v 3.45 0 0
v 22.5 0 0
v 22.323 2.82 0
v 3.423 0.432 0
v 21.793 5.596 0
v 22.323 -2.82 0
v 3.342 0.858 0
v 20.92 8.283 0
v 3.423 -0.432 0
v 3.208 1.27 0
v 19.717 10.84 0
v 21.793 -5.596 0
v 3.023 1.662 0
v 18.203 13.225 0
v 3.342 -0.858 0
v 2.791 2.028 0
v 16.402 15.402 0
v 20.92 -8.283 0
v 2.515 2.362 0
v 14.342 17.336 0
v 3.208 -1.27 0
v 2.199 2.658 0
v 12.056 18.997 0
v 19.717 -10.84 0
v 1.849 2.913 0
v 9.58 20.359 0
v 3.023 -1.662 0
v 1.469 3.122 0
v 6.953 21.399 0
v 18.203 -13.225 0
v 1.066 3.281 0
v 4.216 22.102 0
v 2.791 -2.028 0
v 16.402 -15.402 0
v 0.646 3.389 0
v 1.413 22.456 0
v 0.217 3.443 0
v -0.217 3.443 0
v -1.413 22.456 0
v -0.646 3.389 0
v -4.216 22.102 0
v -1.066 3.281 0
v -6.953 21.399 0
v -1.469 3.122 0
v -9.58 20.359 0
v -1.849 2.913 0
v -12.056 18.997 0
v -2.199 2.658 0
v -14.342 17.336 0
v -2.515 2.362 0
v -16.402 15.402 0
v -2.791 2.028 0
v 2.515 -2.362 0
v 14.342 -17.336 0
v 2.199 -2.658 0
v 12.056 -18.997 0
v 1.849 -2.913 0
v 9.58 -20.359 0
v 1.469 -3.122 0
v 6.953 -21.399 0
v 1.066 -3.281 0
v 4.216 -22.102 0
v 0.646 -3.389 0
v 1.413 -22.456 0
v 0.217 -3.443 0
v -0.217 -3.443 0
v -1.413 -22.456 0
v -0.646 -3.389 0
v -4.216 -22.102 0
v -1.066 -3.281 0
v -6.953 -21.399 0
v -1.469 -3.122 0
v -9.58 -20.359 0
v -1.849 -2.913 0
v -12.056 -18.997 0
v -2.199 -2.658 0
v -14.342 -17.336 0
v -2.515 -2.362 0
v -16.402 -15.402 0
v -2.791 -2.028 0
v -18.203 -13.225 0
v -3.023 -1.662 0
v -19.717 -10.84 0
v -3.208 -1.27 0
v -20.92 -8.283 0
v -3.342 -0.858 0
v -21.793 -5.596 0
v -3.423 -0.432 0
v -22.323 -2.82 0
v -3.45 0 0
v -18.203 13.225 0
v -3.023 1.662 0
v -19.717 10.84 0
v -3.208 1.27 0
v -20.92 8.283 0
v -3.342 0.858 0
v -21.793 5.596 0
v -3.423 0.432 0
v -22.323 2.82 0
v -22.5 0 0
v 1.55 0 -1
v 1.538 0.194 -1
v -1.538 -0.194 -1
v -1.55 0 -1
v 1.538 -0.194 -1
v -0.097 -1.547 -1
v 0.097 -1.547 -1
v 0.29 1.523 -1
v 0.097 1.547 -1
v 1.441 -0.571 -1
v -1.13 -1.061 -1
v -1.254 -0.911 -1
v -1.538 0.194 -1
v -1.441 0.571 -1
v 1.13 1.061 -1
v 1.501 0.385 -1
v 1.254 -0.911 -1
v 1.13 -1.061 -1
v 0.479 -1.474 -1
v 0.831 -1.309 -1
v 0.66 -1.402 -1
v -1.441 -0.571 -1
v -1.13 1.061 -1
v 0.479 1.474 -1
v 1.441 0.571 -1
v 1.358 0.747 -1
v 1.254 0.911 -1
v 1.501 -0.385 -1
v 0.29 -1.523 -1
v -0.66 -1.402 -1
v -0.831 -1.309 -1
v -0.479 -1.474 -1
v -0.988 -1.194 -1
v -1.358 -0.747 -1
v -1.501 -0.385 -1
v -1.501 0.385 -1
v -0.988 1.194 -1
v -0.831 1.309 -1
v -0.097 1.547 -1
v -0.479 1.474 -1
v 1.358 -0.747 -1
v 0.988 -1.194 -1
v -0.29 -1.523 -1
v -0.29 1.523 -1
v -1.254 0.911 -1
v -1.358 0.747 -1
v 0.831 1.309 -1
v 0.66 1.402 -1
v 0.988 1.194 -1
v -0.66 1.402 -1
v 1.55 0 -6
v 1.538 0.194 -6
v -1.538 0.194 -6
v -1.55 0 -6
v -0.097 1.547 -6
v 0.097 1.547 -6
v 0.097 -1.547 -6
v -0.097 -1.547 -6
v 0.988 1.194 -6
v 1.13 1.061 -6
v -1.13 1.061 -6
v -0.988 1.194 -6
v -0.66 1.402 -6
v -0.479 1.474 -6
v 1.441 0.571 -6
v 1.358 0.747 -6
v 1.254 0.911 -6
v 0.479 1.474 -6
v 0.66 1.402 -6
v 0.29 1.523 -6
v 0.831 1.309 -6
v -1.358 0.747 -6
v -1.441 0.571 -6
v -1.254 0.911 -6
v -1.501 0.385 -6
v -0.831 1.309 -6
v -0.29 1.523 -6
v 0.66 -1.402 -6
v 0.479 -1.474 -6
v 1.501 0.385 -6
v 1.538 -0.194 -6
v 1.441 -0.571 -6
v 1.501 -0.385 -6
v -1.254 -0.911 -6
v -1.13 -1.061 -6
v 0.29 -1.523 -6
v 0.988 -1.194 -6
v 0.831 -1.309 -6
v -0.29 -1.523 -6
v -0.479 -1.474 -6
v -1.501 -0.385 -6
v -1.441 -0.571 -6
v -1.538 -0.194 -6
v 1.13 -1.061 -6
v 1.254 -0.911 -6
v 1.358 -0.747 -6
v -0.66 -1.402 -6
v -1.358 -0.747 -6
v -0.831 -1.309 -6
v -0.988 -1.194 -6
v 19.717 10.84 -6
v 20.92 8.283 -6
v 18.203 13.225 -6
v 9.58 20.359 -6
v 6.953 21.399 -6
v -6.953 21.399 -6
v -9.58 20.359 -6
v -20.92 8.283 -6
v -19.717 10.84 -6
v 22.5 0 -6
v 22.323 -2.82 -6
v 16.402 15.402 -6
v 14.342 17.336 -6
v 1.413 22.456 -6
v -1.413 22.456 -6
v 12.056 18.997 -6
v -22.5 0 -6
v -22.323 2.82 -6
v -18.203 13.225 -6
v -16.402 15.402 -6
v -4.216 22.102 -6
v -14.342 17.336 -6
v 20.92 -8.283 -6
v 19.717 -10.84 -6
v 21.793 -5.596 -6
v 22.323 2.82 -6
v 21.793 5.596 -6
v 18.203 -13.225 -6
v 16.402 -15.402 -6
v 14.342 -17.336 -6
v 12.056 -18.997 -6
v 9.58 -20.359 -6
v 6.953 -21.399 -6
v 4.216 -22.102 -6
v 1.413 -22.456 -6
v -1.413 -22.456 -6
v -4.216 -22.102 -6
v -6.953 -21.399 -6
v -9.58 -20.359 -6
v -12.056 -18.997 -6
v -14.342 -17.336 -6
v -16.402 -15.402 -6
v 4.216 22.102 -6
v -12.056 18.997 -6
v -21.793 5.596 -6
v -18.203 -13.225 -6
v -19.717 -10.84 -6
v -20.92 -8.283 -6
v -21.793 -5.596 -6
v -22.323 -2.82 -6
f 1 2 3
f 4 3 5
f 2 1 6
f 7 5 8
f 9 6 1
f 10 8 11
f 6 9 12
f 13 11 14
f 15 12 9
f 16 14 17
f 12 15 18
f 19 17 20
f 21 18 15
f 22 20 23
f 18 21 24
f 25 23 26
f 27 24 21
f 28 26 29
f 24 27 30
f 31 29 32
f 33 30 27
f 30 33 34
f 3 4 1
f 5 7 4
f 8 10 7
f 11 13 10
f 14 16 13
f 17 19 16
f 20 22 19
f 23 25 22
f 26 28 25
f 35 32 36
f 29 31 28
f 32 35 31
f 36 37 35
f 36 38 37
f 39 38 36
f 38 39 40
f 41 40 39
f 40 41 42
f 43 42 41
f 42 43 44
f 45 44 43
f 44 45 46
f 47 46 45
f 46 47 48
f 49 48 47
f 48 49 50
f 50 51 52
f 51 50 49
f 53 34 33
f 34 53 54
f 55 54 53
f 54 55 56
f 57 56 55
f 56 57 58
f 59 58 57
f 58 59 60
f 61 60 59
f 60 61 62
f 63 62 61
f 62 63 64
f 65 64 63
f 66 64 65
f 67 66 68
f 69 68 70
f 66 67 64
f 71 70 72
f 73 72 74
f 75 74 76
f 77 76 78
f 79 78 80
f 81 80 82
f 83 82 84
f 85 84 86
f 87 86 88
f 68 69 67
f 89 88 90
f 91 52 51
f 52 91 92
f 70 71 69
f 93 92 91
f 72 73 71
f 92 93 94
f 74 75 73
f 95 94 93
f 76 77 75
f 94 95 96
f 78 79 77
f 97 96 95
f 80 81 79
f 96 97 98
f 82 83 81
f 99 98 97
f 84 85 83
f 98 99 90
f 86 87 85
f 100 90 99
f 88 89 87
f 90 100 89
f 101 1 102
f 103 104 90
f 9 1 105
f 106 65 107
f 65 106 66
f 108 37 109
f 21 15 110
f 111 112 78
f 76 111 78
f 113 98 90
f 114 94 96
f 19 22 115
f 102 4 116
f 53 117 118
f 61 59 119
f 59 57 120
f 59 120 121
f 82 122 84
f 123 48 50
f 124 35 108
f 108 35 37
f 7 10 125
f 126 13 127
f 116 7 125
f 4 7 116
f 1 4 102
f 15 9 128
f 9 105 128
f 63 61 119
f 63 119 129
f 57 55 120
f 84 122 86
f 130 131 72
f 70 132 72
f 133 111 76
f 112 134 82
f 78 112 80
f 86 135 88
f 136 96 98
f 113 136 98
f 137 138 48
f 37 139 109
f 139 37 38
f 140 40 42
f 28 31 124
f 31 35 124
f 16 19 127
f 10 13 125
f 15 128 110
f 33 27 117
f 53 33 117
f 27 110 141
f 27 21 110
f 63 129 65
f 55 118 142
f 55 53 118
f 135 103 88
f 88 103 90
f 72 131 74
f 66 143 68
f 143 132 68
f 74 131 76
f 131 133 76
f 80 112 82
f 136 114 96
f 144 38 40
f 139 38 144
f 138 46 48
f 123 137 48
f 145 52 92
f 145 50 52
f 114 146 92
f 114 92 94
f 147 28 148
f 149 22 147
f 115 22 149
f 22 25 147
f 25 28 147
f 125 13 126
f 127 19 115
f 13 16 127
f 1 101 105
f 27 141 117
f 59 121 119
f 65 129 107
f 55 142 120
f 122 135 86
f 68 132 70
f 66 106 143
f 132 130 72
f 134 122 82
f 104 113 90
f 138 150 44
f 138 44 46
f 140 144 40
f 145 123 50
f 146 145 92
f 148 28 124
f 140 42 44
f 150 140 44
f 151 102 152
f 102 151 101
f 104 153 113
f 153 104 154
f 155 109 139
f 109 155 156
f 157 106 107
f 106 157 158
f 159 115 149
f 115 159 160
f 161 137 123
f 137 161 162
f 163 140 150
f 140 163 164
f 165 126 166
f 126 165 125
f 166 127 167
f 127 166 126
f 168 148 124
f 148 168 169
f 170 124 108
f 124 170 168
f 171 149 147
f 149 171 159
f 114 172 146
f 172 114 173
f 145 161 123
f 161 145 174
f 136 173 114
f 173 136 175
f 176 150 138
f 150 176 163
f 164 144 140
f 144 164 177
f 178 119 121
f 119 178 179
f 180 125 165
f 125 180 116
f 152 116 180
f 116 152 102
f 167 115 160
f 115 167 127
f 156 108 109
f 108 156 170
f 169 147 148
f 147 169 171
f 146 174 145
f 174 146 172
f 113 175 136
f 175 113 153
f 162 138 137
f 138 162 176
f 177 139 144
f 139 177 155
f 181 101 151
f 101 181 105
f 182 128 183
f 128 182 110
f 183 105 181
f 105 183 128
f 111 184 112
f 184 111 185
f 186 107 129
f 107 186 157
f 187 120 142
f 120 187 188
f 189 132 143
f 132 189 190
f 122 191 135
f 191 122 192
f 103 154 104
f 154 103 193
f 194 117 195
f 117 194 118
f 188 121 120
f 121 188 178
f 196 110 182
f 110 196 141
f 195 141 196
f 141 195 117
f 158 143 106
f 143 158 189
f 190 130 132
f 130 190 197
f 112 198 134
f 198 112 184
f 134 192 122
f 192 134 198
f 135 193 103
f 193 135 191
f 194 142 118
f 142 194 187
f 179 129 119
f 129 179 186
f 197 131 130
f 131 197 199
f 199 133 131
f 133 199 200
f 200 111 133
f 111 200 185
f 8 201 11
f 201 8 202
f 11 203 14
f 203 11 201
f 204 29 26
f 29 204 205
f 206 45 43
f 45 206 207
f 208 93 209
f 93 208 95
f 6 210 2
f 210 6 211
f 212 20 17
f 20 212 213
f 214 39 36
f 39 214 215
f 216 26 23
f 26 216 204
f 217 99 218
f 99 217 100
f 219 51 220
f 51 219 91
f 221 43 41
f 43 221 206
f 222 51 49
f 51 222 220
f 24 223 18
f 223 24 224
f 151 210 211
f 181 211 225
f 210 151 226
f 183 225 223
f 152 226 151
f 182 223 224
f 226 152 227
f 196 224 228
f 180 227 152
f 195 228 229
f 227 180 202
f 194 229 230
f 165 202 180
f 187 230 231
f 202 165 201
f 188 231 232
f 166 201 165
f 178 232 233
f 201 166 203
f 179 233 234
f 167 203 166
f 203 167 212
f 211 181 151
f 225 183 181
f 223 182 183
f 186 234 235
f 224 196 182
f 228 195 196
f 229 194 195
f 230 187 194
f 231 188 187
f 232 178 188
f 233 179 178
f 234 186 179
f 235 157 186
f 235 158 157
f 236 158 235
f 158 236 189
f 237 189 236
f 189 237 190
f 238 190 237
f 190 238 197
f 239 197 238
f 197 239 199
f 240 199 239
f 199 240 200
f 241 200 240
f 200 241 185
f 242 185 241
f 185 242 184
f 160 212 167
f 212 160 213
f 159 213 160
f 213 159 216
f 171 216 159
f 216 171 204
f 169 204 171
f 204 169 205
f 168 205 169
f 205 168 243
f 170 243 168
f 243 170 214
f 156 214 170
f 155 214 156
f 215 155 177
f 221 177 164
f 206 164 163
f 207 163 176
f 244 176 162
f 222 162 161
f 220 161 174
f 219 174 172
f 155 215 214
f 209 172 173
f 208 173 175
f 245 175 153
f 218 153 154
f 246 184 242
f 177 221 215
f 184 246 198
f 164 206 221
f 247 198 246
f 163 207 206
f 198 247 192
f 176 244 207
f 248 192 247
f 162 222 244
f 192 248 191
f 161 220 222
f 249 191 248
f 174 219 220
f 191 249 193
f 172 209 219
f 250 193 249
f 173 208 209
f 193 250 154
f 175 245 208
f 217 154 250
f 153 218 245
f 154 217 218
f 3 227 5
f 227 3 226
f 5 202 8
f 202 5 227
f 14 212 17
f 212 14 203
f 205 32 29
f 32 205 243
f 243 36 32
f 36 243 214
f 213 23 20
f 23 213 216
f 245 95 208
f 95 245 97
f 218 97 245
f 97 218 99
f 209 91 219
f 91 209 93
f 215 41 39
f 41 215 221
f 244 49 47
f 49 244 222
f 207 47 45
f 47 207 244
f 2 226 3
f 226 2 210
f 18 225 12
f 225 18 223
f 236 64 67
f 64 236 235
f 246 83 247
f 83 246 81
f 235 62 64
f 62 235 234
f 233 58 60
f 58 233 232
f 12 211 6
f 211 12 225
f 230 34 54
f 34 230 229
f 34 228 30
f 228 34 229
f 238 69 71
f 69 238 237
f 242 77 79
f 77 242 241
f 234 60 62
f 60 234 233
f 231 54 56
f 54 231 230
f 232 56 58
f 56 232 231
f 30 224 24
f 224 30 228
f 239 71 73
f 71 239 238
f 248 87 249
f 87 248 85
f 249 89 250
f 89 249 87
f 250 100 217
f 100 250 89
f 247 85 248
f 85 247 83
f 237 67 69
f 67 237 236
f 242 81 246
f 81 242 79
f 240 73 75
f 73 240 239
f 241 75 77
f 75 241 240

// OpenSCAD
$fn = 50;


difference() {
	union() {
		translate(v = [0, 0, -6.0000000000]) {
			cylinder(h = 6, r = 22.5000000000);
		}
	}
	union() {
		translate(v = [0, 0, 0]) {
			rotate(a = [0, 0, 0]) {
				difference() {
					union() {
						translate(v = [0, 0, -9.0000000000]) {
							cylinder(h = 9, r = 1.2500000000);
						}
						translate(v = [0, 0, -1.0000000000]) {
							cylinder(h = 1.0000000000, r1 = 1.5500000000, r2 = 3.4500000000);
						}
						translate(v = [0, 0, -9.0000000000]) {
							cylinder(h = 9, r = 1.5500000000);
						}
						translate(v = [0, 0, -9.0000000000]) {
							cylinder(h = 9, r = 1.2500000000);
						}
					}
					union();
				}
			}
		}
	}
}
